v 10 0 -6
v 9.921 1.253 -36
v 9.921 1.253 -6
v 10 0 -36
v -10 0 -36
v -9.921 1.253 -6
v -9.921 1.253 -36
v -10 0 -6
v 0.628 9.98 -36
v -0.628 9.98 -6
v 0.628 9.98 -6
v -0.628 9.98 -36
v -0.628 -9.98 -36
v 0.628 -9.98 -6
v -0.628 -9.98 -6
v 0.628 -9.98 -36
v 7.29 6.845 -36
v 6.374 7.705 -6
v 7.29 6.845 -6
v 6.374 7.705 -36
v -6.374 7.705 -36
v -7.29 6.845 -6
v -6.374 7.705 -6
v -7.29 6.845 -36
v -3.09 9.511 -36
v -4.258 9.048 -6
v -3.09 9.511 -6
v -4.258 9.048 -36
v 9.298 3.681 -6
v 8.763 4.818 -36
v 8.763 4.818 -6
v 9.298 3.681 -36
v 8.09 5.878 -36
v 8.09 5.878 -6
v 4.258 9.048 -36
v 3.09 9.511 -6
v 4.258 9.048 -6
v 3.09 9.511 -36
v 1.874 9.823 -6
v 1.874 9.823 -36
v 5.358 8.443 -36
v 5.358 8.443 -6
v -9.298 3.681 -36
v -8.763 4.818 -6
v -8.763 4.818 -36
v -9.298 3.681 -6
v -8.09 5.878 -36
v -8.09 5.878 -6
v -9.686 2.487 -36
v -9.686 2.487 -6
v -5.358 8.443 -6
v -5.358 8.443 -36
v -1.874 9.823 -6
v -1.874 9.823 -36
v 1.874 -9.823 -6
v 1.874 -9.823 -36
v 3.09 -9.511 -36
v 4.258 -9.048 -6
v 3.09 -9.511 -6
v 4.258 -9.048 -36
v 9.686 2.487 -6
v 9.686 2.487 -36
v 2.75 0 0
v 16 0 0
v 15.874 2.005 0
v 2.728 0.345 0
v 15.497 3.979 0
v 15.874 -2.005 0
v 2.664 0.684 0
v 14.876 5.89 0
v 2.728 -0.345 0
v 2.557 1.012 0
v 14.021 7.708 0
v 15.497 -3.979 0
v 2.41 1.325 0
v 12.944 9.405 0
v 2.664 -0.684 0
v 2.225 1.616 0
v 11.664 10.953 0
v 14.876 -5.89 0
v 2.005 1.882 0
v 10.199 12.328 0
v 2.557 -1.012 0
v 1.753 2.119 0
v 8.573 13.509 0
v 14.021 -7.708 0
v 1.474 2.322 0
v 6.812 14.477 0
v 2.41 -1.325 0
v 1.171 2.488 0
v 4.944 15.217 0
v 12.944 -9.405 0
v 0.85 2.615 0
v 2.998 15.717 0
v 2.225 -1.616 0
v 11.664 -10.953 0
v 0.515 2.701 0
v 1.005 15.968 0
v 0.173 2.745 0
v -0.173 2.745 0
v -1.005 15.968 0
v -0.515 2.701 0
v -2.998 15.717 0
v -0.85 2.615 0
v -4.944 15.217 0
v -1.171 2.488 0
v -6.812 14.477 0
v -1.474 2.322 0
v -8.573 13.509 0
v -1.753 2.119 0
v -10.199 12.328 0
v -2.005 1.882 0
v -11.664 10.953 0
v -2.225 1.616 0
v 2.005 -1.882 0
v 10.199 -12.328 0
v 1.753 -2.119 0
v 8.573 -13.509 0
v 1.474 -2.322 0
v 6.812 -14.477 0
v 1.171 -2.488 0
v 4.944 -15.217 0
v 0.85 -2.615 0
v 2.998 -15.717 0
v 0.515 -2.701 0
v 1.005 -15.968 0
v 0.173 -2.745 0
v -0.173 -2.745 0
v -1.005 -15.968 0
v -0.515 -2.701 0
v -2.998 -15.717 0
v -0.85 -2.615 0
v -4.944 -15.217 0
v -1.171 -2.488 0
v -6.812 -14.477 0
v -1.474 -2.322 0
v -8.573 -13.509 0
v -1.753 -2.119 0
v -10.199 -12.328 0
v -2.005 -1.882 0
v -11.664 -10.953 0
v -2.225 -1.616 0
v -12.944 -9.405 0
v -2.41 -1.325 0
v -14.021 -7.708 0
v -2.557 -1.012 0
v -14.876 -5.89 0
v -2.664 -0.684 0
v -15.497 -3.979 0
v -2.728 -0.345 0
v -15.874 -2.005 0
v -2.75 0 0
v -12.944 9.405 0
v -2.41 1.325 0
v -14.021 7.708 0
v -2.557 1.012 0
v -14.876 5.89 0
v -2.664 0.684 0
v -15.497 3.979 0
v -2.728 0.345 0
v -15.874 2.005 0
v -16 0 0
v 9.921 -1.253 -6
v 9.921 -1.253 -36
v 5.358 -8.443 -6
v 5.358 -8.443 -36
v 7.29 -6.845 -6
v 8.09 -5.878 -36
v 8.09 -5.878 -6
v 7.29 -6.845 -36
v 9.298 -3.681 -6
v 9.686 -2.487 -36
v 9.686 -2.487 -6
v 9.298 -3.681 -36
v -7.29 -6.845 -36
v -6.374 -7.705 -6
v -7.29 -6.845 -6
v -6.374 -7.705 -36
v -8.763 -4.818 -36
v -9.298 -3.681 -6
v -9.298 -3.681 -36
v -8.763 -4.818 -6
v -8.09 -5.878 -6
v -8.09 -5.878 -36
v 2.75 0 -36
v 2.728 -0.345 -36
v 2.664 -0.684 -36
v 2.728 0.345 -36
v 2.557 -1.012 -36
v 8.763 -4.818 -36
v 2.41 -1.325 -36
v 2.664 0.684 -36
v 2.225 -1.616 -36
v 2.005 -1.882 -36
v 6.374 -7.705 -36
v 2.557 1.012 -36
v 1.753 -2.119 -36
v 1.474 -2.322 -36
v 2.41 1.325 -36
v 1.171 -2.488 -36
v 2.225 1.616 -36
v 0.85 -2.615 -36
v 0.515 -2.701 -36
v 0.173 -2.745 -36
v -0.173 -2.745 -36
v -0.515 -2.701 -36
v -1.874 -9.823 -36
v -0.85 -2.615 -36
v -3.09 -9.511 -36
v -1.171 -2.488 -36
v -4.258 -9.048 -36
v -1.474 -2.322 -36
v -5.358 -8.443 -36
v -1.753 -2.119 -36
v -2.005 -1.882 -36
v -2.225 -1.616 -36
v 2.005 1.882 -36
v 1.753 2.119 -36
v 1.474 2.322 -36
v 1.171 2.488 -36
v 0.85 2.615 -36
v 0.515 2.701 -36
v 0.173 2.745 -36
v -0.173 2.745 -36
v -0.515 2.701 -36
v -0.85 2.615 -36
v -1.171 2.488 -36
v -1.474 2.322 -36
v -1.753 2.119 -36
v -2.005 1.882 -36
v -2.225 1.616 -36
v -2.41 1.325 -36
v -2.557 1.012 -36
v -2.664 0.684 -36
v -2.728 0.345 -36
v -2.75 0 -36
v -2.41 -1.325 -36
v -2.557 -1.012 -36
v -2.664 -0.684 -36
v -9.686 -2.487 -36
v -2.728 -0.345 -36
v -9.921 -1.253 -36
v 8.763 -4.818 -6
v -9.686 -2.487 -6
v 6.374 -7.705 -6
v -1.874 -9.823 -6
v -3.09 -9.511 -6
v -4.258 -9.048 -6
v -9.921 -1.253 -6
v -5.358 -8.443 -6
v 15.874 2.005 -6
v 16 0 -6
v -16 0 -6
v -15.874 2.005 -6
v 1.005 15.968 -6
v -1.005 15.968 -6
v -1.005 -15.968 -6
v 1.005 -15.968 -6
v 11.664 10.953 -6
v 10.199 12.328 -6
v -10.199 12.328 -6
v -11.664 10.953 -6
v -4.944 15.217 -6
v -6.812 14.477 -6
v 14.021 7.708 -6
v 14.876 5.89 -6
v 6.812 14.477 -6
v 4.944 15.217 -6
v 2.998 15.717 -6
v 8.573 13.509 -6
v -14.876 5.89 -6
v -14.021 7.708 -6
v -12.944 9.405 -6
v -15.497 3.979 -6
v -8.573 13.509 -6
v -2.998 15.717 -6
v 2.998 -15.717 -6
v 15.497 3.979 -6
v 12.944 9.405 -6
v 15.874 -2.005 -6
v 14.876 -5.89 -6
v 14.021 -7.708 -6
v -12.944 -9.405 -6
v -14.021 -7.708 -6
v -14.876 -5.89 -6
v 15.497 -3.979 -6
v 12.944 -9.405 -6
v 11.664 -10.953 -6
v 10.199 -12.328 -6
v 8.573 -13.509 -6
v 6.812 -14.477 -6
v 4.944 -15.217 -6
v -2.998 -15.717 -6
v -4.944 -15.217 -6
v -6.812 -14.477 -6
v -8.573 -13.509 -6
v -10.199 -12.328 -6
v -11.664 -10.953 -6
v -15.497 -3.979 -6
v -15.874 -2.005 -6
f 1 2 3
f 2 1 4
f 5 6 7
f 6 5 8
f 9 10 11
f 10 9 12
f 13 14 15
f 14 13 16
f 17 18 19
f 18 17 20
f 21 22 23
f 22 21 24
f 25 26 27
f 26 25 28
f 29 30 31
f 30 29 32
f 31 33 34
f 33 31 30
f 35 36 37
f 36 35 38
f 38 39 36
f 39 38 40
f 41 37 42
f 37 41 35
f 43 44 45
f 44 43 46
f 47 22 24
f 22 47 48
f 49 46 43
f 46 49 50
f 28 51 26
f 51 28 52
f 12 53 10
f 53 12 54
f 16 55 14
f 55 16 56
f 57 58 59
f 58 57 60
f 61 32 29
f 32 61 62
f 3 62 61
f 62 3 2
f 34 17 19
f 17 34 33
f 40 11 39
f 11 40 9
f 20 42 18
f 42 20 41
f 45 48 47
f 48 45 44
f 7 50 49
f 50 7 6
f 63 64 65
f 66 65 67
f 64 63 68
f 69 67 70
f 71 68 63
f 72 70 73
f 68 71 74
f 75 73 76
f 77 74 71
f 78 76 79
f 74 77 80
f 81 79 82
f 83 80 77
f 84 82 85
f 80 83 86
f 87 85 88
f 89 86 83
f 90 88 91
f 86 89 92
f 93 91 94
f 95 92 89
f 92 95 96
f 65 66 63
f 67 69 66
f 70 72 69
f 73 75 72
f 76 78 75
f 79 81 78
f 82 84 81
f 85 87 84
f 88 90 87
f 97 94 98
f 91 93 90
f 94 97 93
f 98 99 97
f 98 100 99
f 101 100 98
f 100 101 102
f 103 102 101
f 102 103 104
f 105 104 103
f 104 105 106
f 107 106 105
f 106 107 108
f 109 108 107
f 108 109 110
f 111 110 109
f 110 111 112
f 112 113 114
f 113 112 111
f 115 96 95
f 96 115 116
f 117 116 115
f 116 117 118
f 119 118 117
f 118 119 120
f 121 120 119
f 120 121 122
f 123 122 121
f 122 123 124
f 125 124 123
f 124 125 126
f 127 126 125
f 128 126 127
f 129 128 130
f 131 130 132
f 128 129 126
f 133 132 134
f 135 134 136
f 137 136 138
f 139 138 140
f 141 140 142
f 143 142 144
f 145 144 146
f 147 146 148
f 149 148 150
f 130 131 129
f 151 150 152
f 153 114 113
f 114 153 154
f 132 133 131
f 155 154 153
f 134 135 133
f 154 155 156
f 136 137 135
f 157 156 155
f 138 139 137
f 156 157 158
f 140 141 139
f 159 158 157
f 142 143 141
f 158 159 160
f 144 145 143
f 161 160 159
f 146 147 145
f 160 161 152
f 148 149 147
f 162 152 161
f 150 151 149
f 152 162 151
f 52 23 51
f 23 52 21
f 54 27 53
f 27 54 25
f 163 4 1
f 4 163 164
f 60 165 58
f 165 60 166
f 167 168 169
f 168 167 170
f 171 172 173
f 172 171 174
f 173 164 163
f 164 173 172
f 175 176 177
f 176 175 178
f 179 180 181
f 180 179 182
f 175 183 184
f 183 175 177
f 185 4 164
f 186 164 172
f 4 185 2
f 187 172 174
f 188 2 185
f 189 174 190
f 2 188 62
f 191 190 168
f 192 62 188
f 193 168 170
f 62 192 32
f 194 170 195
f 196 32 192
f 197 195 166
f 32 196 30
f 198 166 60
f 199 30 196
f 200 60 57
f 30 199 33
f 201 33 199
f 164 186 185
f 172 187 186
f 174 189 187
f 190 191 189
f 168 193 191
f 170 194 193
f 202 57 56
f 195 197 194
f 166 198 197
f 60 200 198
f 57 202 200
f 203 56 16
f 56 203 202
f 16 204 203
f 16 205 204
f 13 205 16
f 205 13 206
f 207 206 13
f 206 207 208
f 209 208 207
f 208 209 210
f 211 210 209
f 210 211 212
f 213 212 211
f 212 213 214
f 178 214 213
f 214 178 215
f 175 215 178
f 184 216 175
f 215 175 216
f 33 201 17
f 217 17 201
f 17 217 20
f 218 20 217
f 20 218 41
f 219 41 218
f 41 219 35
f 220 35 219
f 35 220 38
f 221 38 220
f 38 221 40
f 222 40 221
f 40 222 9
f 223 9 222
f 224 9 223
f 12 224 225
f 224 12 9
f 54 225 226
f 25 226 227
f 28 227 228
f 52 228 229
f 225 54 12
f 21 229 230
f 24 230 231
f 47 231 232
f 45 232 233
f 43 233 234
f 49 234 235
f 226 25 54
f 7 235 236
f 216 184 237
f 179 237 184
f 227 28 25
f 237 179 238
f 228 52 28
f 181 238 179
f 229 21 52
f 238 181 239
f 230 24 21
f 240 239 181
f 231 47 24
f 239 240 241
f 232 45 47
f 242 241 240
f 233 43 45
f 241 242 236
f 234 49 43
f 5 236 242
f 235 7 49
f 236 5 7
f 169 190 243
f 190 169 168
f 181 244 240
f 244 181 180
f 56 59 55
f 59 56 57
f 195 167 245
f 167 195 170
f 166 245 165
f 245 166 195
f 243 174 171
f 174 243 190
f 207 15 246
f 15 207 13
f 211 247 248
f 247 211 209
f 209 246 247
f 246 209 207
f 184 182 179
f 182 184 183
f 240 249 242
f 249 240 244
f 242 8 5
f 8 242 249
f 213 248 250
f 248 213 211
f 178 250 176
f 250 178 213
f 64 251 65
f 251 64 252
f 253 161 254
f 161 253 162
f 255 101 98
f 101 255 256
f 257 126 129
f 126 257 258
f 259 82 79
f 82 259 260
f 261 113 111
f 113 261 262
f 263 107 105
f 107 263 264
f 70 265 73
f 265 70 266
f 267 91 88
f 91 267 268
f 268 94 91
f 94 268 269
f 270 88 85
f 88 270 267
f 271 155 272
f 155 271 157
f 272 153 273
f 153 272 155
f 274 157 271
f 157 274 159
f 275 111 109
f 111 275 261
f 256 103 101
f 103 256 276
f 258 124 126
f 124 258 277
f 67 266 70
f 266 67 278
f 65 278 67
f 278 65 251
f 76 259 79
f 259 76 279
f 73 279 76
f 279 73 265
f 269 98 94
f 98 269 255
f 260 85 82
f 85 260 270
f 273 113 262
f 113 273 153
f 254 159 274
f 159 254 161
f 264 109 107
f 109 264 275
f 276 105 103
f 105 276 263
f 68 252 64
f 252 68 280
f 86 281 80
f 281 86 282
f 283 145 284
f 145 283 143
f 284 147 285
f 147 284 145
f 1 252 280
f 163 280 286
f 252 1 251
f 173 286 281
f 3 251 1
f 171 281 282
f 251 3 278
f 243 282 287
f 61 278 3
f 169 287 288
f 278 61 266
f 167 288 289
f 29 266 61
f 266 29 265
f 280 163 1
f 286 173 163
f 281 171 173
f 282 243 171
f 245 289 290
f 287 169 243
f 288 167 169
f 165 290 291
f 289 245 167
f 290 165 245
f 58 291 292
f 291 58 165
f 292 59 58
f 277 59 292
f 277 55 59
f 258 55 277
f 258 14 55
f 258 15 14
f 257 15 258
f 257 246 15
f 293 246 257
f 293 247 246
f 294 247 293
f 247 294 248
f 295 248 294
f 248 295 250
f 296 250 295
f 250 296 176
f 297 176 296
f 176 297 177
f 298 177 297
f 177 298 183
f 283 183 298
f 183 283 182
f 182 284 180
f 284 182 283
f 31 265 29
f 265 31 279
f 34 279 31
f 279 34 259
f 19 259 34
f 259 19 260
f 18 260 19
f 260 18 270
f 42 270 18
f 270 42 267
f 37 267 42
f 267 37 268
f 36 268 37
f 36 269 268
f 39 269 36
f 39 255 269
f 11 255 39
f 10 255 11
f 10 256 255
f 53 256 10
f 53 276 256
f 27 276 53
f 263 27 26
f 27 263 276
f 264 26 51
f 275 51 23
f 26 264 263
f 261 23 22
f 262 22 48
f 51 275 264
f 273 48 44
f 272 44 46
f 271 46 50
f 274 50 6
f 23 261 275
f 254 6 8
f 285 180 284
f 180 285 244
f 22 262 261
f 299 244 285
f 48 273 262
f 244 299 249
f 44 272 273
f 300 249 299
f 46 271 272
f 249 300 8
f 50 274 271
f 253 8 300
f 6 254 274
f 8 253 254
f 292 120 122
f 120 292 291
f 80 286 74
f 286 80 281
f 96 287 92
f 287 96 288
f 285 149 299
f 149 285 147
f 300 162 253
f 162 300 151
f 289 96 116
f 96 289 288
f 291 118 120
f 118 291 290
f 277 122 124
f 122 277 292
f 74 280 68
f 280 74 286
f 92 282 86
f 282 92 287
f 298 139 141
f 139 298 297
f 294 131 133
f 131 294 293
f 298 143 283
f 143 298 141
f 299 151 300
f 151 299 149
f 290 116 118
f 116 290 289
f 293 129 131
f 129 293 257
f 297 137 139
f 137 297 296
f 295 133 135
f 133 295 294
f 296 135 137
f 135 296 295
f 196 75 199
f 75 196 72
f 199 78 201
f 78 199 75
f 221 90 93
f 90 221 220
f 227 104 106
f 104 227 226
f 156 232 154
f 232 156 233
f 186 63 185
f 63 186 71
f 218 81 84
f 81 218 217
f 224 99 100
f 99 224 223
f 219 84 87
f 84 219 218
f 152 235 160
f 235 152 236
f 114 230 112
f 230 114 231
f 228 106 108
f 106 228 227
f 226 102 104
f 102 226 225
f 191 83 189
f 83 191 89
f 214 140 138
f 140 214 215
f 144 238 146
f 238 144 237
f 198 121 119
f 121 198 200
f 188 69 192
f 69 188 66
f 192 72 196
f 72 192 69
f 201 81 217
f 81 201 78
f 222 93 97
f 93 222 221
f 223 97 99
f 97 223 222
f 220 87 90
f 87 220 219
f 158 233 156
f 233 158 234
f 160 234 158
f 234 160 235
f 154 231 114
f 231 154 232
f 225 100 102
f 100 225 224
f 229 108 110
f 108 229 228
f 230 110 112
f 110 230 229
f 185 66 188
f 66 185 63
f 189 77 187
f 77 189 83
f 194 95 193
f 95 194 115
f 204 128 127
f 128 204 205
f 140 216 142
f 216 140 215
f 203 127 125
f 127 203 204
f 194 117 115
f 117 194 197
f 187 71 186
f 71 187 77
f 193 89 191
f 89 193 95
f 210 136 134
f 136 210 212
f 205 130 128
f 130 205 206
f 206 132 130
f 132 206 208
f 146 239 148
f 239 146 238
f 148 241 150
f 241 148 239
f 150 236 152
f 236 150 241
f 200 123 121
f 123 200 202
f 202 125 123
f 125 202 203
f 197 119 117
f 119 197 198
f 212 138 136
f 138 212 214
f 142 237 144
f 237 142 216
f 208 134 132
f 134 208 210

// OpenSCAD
$fn = 50;


difference() {
	union() {
		translate(v = [0, 0, -36.0000000000]) {
			cylinder(h = 36, r = 10.0000000000);
		}
		translate(v = [0, 0, -6.0000000000]) {
			cylinder(h = 6, r = 16.0000000000);
		}
	}
	union() {
		#translate(v = [0, 0, -36]) {
			cylinder(h = 36, r = 2.7500000000);
		}
	}
}
